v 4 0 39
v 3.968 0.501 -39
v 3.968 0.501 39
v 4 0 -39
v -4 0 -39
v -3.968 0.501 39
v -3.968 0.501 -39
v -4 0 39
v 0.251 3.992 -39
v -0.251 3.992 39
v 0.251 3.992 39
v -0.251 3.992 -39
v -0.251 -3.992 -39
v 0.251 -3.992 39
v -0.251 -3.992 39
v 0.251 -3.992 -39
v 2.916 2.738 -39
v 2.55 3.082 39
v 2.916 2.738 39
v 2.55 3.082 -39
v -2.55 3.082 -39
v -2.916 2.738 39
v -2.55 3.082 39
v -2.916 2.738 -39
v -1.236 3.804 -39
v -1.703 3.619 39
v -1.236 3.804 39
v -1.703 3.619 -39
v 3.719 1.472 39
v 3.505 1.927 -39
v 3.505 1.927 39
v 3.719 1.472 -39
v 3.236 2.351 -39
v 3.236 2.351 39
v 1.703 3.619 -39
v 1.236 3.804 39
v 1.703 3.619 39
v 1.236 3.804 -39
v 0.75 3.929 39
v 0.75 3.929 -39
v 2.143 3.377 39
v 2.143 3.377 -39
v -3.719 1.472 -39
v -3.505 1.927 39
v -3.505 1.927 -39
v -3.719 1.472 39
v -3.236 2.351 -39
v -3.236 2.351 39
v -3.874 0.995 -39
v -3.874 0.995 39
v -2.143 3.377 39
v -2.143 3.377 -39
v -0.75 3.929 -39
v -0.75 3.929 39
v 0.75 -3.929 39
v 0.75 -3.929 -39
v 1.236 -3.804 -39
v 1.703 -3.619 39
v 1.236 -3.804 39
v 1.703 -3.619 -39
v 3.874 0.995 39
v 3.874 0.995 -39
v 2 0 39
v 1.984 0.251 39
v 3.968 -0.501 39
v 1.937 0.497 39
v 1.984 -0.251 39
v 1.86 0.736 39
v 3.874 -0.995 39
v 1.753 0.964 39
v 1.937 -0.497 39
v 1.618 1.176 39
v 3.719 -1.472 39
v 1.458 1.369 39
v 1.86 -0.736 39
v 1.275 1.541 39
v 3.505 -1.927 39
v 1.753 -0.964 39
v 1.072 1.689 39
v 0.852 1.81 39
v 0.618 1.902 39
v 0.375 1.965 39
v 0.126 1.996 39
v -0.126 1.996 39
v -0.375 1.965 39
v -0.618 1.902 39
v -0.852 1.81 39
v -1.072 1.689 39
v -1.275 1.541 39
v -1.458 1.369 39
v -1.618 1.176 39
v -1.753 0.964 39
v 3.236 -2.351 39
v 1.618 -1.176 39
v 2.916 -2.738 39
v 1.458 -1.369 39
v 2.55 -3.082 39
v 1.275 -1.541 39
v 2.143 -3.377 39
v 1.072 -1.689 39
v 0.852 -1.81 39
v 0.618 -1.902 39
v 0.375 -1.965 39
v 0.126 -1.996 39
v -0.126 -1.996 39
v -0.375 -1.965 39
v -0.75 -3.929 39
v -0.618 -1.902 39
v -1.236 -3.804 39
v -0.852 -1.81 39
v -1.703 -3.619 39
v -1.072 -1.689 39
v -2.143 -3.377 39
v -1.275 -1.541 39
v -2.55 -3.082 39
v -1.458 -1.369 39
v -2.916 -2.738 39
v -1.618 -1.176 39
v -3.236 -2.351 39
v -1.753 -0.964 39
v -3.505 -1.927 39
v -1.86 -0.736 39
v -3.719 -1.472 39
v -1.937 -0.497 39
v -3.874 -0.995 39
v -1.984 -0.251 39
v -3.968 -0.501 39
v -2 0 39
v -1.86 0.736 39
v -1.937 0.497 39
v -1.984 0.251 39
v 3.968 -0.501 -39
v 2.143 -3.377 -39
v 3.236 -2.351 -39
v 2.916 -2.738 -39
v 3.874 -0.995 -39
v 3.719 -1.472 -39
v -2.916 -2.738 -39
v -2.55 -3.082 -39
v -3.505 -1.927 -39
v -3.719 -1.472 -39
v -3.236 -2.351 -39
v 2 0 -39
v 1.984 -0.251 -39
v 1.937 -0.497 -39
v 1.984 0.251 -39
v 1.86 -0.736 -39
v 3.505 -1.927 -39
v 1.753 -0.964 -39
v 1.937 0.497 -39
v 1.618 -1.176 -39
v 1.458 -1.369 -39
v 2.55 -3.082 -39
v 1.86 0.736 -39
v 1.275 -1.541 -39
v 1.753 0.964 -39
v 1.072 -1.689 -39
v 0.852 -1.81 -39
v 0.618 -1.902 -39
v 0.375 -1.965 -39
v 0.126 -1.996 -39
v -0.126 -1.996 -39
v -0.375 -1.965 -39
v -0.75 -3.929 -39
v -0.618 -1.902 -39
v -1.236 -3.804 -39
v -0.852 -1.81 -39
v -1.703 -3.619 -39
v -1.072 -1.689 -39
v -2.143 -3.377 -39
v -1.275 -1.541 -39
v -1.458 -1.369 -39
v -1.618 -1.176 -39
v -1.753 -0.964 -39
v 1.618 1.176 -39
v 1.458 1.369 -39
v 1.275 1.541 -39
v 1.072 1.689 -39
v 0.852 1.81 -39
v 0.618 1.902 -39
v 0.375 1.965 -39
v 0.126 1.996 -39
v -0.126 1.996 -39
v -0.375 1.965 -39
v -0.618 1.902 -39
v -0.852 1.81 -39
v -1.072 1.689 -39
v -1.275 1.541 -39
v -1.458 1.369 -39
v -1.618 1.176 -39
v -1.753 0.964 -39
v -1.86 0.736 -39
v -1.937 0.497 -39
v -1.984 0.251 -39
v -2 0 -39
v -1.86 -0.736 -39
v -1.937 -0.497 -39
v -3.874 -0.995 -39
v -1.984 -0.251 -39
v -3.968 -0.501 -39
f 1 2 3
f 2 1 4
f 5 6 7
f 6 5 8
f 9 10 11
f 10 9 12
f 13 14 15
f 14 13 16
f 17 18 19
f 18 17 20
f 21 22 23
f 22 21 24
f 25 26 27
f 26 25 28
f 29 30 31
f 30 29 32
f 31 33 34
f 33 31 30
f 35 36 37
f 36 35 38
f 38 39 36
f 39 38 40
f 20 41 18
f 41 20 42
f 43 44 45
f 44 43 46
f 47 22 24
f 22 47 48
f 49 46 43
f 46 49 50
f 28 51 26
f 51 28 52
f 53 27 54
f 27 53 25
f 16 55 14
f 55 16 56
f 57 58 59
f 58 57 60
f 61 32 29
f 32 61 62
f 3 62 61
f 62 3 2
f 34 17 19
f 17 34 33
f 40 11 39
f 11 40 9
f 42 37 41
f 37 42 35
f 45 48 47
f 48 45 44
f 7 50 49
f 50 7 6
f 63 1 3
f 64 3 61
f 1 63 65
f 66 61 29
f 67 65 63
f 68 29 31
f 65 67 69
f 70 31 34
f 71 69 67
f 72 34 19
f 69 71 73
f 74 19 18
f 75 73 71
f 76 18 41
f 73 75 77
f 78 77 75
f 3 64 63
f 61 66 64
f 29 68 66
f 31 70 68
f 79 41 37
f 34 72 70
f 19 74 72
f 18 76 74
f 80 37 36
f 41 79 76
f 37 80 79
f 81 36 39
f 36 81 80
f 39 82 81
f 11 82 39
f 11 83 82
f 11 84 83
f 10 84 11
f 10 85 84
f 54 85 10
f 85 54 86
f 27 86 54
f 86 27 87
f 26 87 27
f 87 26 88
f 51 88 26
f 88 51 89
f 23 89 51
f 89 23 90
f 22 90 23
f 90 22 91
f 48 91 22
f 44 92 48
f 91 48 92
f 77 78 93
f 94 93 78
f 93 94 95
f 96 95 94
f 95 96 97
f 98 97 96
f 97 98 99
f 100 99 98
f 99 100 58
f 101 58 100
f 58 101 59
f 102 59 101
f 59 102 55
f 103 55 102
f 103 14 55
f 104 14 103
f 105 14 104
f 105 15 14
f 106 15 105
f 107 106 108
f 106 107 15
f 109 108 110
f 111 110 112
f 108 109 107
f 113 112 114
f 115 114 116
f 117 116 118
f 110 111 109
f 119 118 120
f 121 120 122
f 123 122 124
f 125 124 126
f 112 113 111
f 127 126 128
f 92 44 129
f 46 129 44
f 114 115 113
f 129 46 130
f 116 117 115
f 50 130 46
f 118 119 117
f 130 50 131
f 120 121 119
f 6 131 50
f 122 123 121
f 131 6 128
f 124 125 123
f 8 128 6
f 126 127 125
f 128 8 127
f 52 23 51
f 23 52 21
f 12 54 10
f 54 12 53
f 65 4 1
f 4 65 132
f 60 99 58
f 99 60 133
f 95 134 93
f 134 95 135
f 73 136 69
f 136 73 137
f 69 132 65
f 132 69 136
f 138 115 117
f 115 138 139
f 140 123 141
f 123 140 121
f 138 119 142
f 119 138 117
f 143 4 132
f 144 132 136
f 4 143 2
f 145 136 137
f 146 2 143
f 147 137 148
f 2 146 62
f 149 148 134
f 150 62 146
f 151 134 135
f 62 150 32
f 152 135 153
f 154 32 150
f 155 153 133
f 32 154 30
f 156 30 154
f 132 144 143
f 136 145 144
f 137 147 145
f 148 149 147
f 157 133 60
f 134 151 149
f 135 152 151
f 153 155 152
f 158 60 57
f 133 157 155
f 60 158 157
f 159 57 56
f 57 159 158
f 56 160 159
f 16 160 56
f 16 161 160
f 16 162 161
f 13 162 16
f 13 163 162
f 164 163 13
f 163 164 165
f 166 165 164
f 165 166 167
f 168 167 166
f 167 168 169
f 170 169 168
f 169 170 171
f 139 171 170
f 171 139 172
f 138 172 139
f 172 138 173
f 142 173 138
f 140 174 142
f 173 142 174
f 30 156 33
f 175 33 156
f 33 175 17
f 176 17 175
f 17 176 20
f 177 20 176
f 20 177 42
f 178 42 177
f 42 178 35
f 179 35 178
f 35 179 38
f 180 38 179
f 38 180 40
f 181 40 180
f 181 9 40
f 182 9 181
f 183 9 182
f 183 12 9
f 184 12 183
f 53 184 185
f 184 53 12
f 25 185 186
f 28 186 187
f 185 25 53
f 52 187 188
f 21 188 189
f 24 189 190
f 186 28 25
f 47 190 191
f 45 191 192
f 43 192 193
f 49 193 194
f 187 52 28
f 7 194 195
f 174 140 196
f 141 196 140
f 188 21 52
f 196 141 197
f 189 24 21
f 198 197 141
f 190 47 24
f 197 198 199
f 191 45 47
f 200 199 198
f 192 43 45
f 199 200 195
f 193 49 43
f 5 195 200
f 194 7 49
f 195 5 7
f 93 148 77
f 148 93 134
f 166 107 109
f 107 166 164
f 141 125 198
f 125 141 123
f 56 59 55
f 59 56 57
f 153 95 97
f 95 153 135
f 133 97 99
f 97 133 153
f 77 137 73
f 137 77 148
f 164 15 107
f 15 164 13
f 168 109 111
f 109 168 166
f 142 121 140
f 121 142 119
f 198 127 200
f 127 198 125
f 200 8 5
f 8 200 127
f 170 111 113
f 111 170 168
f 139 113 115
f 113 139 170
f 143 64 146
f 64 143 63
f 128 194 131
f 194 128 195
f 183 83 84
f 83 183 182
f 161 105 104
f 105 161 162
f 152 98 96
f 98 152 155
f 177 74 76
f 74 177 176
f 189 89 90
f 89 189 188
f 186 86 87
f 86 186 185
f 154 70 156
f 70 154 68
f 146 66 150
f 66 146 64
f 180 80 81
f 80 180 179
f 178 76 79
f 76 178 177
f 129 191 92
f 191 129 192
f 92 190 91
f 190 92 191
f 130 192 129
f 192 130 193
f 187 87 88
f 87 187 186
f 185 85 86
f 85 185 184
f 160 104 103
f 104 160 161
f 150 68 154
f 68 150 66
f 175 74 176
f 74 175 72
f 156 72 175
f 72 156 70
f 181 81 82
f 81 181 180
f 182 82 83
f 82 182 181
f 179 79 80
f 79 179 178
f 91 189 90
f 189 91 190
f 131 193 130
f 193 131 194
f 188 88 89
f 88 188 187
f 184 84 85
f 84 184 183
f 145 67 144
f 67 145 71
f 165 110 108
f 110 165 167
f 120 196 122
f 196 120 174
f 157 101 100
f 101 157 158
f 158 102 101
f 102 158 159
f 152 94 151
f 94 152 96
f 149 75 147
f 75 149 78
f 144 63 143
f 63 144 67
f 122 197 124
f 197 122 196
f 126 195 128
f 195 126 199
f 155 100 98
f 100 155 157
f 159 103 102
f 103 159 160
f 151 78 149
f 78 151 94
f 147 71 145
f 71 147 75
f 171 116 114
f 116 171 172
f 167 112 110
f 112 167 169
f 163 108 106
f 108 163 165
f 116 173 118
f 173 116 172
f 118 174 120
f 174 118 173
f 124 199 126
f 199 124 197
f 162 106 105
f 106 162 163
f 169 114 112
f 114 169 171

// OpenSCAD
$fn = 50;


difference() {
	union() {
		translate(v = [0, 0, -39.0000000000]) {
			cylinder(h = 78, r = 4.0000000000);
		}
	}
	union() {
		translate(v = [0, 0, -100.0000000000]) {
			cylinder(h = 200, r = 2);
		}
	}
}
